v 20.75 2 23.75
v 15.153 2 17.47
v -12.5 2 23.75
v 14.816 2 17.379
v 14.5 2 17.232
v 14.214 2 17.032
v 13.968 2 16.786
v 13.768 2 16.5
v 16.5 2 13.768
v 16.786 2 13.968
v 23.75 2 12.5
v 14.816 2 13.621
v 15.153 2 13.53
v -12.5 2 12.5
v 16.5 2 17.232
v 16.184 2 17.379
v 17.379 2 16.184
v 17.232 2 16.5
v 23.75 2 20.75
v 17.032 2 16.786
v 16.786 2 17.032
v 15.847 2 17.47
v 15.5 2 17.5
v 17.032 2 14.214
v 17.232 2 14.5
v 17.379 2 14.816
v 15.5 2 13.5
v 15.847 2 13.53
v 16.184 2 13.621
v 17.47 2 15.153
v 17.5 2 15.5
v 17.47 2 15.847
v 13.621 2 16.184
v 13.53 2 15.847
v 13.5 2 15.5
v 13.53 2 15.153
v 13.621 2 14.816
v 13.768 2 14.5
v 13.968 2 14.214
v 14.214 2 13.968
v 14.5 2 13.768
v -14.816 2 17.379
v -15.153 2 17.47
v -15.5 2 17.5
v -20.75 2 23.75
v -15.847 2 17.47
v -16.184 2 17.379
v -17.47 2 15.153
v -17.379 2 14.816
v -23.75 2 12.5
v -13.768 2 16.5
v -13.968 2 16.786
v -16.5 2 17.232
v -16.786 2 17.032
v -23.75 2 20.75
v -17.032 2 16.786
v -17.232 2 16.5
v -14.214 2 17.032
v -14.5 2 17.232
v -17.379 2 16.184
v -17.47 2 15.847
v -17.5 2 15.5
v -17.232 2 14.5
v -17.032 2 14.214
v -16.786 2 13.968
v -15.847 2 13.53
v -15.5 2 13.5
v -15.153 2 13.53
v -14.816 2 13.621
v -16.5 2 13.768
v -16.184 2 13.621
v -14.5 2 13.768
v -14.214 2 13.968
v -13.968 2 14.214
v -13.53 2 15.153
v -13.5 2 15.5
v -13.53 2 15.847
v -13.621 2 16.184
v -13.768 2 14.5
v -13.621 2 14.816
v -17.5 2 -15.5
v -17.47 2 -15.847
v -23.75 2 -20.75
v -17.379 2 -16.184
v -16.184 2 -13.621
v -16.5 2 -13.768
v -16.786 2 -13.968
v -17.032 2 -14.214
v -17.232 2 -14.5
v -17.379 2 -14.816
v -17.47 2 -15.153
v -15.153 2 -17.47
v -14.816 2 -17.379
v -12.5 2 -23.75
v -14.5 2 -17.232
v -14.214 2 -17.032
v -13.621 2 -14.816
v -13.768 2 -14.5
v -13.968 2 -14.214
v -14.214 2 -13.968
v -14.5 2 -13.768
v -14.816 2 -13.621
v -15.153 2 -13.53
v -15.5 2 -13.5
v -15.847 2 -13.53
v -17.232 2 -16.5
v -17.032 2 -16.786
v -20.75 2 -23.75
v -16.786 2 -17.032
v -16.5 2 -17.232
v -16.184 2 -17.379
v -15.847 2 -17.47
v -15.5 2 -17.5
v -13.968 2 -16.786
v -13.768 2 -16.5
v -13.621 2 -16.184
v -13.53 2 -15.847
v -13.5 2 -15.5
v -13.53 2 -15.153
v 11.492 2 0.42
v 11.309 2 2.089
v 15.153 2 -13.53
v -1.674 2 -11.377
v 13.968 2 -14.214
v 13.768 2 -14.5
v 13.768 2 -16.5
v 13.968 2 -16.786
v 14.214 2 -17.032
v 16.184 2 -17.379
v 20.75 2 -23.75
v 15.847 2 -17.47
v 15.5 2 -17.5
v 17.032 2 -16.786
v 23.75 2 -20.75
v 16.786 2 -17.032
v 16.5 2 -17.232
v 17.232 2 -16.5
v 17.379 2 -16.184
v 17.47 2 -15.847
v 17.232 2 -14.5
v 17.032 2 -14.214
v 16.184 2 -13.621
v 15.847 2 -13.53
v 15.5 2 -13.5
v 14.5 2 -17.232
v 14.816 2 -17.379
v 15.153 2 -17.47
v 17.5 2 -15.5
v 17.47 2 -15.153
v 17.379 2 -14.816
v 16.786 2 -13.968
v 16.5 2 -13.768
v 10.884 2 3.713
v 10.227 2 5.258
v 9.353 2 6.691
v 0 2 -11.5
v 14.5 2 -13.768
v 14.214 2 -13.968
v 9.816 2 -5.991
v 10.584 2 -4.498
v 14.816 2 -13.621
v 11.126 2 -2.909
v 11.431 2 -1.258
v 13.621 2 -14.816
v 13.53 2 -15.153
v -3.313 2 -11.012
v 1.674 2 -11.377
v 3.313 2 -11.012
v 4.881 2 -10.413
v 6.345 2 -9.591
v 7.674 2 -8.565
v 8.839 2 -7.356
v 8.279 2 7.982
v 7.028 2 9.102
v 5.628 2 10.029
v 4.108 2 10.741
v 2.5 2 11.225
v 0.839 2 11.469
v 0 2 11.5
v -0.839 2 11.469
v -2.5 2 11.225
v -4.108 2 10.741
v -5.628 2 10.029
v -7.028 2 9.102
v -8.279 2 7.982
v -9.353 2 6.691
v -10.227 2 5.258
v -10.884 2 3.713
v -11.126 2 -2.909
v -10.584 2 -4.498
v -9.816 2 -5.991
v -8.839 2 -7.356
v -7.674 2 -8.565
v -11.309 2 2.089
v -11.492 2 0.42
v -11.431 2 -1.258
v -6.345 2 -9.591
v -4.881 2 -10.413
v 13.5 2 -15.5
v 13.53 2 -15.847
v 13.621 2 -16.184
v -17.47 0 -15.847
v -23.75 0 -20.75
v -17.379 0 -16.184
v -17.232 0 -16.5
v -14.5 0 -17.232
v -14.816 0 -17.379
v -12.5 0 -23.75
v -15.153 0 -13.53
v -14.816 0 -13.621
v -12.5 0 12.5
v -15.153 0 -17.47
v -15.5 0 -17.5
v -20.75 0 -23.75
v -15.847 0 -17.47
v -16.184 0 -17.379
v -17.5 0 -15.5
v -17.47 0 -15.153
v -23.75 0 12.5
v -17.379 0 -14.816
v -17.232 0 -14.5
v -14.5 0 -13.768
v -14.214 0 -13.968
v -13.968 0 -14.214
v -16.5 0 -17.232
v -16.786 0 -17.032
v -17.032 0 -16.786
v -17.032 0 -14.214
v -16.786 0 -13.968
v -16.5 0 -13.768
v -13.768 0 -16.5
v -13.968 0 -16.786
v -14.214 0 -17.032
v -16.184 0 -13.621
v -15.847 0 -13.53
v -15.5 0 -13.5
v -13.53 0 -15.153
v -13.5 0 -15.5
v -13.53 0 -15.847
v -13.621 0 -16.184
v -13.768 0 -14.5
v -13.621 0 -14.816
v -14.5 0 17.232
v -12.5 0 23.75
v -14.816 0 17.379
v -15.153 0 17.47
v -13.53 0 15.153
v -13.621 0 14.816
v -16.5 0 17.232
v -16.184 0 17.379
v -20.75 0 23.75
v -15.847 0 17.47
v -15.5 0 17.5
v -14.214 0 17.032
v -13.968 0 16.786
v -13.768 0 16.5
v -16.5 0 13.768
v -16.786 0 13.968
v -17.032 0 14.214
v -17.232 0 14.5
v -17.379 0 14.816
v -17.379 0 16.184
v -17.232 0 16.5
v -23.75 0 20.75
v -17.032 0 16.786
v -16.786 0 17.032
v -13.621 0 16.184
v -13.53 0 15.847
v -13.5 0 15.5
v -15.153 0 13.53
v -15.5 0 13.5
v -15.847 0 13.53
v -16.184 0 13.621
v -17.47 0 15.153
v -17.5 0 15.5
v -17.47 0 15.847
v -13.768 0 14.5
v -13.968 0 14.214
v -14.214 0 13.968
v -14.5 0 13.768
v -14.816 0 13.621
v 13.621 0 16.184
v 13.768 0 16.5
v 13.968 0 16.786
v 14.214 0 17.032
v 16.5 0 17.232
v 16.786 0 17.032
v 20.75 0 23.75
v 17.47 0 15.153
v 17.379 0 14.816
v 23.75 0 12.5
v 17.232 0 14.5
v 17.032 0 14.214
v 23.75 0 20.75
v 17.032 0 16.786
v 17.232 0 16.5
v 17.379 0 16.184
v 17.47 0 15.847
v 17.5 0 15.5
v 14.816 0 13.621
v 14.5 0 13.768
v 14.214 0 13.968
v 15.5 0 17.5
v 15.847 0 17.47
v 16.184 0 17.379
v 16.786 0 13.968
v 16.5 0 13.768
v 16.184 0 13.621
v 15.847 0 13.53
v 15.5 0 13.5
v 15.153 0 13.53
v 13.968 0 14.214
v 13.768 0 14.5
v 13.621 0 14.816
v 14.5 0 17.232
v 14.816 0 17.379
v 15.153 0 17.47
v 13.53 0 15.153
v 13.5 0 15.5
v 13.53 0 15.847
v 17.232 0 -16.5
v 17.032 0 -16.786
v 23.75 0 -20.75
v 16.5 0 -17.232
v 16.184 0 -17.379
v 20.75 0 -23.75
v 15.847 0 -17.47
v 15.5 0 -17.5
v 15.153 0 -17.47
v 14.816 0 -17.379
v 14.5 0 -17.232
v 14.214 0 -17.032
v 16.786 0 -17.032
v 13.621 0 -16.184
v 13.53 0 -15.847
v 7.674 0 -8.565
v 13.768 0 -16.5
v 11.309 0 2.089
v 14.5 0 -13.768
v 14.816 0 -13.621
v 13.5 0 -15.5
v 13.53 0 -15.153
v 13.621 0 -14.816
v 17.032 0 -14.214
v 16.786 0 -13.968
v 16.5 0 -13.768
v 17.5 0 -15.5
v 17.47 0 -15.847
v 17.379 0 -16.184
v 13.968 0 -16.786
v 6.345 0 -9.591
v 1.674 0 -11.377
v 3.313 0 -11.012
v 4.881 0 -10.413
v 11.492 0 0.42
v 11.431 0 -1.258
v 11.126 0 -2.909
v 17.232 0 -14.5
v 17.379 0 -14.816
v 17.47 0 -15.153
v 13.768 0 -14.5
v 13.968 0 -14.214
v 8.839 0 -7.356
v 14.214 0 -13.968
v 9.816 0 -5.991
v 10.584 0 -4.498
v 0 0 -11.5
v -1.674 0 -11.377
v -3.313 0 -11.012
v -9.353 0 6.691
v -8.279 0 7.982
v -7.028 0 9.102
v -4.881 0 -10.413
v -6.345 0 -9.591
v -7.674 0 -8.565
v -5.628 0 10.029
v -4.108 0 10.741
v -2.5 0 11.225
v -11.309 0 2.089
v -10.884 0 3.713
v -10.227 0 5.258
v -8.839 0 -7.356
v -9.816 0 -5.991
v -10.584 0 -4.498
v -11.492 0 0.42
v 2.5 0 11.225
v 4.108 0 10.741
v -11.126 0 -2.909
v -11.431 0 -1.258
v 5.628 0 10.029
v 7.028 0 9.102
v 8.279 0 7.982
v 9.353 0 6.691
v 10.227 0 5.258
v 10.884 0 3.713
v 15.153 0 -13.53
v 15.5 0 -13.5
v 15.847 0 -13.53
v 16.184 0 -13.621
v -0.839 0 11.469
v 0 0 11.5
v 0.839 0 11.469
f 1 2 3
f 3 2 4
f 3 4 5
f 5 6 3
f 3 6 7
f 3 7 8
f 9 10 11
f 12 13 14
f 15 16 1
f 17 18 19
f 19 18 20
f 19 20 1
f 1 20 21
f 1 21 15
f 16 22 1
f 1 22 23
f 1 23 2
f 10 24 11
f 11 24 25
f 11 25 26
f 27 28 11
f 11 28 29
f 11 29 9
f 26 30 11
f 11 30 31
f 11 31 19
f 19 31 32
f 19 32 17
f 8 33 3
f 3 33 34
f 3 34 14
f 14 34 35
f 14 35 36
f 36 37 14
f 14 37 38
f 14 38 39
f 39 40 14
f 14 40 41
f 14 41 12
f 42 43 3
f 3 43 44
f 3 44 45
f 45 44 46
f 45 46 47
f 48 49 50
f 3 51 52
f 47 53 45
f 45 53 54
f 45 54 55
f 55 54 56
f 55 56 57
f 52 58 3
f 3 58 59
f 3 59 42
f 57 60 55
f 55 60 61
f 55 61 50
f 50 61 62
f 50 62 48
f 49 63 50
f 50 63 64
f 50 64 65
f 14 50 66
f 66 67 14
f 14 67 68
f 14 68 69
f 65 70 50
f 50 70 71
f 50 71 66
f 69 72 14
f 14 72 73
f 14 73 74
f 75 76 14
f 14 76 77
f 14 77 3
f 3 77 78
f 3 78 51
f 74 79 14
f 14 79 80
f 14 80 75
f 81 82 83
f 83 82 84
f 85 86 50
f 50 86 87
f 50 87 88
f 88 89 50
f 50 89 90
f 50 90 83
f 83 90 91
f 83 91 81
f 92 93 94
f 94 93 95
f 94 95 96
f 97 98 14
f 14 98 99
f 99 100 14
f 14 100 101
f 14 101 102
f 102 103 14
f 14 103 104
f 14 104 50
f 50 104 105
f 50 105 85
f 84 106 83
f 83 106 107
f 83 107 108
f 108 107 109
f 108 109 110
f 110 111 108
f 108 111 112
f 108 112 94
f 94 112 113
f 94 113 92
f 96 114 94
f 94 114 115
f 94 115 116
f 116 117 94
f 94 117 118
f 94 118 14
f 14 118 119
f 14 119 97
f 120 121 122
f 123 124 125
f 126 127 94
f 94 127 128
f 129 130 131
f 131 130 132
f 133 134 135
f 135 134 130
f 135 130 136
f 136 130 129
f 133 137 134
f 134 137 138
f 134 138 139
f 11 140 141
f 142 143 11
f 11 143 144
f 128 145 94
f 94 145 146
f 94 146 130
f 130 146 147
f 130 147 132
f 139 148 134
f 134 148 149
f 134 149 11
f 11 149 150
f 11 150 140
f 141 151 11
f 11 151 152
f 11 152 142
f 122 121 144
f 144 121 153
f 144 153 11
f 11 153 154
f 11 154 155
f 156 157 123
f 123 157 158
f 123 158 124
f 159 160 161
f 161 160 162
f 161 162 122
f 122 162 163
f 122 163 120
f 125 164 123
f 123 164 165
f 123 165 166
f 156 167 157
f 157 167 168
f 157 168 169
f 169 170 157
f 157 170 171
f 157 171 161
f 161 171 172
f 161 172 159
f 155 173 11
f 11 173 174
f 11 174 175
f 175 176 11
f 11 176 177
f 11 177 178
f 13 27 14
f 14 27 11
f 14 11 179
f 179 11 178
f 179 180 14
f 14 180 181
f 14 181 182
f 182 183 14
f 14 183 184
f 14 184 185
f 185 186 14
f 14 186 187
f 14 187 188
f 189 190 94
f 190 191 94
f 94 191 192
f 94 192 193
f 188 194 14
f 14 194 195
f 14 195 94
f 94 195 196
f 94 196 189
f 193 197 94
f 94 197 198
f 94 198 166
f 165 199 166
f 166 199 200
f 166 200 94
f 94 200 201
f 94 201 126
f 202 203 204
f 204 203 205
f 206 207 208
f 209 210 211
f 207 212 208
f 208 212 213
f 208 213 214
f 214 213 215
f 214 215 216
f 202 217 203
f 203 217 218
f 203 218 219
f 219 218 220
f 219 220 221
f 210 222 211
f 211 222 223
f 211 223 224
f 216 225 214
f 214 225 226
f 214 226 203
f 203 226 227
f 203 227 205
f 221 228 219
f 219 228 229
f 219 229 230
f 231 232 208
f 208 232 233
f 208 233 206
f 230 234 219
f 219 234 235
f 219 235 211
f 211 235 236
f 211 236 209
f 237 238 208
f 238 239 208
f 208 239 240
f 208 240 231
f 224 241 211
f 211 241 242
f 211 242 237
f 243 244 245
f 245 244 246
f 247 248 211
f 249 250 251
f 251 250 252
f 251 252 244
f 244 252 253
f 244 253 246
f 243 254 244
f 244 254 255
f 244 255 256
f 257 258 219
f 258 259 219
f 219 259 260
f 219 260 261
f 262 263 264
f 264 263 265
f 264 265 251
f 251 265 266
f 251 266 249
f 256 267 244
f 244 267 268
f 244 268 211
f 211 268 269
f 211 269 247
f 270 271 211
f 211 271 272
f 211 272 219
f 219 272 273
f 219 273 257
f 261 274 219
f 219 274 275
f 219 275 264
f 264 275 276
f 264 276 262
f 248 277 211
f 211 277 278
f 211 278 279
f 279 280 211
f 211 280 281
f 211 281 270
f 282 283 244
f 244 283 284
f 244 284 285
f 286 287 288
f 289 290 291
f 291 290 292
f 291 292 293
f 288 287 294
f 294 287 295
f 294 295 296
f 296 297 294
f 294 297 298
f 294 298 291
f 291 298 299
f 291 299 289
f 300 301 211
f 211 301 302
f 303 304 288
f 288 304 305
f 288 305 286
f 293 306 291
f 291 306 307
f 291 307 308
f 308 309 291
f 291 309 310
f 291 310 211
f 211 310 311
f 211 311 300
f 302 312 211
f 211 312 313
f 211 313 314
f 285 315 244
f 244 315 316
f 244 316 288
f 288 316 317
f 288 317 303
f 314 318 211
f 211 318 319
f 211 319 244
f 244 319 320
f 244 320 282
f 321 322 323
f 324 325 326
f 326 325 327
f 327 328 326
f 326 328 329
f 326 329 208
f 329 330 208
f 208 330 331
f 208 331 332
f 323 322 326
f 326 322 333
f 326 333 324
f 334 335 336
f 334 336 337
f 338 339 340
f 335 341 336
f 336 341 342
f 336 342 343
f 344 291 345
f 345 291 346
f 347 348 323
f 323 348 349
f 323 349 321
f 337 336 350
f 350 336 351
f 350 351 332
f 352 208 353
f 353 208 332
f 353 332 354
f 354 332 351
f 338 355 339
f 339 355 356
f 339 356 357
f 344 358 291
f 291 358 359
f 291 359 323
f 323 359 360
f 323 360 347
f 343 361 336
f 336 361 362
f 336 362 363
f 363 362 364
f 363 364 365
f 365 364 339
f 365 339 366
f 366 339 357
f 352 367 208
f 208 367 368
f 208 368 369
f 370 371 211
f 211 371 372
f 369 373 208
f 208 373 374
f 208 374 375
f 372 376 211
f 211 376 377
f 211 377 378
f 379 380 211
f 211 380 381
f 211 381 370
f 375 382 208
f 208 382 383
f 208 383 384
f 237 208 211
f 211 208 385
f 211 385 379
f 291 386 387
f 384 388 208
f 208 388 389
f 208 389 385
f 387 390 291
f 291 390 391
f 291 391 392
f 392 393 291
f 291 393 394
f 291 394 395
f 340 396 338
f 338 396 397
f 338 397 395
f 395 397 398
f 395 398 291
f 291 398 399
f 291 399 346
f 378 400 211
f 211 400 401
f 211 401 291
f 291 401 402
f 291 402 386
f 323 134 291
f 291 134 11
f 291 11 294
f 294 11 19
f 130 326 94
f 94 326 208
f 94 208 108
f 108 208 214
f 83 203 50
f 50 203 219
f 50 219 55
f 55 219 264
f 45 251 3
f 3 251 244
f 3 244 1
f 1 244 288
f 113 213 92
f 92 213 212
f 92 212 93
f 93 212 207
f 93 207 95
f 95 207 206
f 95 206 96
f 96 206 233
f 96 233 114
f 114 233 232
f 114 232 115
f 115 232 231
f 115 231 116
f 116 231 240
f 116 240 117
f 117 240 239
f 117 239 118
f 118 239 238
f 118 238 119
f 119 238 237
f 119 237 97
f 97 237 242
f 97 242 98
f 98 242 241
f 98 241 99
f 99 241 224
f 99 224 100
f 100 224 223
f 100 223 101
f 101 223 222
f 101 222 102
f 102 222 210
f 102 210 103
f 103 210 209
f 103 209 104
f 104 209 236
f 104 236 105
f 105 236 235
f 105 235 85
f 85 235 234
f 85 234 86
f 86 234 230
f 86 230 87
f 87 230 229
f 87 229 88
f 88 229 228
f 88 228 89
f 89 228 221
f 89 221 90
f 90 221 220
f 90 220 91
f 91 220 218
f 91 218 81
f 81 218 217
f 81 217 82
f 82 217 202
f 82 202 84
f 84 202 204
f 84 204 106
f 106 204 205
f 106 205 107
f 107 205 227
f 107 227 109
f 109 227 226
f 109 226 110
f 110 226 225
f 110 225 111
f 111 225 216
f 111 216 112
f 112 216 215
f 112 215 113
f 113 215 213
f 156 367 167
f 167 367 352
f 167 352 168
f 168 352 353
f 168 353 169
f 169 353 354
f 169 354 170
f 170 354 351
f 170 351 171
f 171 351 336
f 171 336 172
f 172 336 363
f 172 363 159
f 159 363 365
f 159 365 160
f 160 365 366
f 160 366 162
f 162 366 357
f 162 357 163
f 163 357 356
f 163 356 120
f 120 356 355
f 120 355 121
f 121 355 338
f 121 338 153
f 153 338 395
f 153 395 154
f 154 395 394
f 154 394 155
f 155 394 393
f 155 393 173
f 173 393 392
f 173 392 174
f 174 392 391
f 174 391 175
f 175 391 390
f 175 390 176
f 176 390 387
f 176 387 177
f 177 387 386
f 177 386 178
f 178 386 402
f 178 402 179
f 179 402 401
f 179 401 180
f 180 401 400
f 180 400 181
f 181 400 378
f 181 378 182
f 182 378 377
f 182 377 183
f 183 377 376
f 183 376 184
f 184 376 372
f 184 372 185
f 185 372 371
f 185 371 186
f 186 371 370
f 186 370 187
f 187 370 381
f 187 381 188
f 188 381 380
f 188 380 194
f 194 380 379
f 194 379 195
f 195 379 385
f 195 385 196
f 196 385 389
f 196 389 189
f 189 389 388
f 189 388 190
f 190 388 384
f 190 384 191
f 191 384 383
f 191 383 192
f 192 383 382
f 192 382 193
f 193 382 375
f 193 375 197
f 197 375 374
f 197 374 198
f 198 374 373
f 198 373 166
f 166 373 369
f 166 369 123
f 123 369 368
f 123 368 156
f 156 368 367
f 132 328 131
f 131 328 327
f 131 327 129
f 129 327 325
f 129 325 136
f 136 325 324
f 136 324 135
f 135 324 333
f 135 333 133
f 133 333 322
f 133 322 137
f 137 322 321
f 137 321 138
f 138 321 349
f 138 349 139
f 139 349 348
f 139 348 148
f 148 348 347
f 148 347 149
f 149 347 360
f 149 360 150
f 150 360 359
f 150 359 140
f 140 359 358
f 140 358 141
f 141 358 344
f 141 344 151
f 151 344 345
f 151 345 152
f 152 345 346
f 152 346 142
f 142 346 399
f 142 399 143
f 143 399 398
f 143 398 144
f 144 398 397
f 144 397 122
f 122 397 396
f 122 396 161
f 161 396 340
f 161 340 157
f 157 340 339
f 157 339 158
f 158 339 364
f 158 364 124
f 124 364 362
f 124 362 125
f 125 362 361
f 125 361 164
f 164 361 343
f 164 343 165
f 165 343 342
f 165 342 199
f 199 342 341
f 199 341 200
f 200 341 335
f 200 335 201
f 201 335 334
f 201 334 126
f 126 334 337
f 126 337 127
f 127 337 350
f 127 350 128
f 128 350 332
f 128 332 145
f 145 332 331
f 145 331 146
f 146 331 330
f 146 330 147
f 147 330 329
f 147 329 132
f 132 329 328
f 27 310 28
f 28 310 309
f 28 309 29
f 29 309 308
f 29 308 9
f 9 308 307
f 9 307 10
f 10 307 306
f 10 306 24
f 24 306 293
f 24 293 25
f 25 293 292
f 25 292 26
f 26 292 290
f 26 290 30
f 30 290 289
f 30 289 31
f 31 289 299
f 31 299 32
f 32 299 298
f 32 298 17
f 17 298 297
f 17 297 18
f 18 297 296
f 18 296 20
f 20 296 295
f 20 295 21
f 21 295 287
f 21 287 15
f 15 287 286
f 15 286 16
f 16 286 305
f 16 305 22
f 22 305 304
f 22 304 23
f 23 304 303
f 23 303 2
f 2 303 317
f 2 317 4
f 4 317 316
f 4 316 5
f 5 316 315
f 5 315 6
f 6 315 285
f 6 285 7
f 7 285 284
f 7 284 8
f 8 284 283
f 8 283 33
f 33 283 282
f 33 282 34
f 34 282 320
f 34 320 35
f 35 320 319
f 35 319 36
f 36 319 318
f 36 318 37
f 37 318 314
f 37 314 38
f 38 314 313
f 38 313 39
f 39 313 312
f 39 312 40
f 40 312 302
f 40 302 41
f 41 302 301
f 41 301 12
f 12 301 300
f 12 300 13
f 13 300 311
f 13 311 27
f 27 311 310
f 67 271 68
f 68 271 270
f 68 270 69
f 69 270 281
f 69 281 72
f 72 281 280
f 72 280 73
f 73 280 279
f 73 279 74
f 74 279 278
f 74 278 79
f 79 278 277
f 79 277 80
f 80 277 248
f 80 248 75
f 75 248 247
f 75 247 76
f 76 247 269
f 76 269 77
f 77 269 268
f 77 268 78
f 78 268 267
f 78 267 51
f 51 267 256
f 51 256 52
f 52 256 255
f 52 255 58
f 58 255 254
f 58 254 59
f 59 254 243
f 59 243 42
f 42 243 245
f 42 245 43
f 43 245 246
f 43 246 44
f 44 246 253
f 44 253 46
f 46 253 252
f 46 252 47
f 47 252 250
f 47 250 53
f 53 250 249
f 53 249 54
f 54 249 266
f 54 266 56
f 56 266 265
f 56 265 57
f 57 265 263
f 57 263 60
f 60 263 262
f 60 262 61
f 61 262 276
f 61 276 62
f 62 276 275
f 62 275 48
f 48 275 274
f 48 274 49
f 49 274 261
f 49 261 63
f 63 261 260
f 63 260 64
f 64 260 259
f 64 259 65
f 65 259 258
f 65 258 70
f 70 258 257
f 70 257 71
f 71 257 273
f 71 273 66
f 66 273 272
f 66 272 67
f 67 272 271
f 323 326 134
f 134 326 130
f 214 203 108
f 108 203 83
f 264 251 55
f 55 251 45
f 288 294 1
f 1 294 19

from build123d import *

# Parameters (mm, degrees)
SKETCH2_W           = 47.5
SKETCH2_H           = 47.5
SKETCH2_R           = 2
SKETCH2_R_2         = 11.5
BOSS_EXTRUDE1_DEPTH = 2
CHAMFER1_SIZE       = 3


with BuildPart() as part:
    # Sketch2 → Boss-Extrude1 (new body)
    with BuildSketch(Plane(origin=(0, 0, 0), x_dir=(1, 0, 0), z_dir=(0, 1, 0))):
        Rectangle(SKETCH2_W, SKETCH2_H)
        with Locations(Location((-15.5, 15.5, 0), (0, 0, 270))):
            Circle(SKETCH2_R, mode=Mode.SUBTRACT)
        with Locations(Location((15.5, 15.5, 0), (0, 0, 270))):
            Circle(SKETCH2_R, mode=Mode.SUBTRACT)
        with Locations(Location((15.5, -15.5, 0), (0, 0, 270))):
            Circle(SKETCH2_R, mode=Mode.SUBTRACT)
        with Locations(Location((-15.5, -15.5, 0), (0, 0, 270))):
            Circle(SKETCH2_R, mode=Mode.SUBTRACT)
        with Locations(Location((0, 0, 0), (0, 0, 270))):
            Circle(SKETCH2_R_2, mode=Mode.SUBTRACT)
    extrude(amount=BOSS_EXTRUDE1_DEPTH)

    # Chamfer1
    chamfer1_edges = [part.edges().sort_by_distance(p)[0] for p in [
        (23.75, 1, 23.75),
        (-23.75, 1, 23.75),
        (-23.75, 1, -23.75),
        (23.75, 1, -23.75),
    ]]
    chamfer(chamfer1_edges, length=CHAMFER1_SIZE)


solid = part.part
